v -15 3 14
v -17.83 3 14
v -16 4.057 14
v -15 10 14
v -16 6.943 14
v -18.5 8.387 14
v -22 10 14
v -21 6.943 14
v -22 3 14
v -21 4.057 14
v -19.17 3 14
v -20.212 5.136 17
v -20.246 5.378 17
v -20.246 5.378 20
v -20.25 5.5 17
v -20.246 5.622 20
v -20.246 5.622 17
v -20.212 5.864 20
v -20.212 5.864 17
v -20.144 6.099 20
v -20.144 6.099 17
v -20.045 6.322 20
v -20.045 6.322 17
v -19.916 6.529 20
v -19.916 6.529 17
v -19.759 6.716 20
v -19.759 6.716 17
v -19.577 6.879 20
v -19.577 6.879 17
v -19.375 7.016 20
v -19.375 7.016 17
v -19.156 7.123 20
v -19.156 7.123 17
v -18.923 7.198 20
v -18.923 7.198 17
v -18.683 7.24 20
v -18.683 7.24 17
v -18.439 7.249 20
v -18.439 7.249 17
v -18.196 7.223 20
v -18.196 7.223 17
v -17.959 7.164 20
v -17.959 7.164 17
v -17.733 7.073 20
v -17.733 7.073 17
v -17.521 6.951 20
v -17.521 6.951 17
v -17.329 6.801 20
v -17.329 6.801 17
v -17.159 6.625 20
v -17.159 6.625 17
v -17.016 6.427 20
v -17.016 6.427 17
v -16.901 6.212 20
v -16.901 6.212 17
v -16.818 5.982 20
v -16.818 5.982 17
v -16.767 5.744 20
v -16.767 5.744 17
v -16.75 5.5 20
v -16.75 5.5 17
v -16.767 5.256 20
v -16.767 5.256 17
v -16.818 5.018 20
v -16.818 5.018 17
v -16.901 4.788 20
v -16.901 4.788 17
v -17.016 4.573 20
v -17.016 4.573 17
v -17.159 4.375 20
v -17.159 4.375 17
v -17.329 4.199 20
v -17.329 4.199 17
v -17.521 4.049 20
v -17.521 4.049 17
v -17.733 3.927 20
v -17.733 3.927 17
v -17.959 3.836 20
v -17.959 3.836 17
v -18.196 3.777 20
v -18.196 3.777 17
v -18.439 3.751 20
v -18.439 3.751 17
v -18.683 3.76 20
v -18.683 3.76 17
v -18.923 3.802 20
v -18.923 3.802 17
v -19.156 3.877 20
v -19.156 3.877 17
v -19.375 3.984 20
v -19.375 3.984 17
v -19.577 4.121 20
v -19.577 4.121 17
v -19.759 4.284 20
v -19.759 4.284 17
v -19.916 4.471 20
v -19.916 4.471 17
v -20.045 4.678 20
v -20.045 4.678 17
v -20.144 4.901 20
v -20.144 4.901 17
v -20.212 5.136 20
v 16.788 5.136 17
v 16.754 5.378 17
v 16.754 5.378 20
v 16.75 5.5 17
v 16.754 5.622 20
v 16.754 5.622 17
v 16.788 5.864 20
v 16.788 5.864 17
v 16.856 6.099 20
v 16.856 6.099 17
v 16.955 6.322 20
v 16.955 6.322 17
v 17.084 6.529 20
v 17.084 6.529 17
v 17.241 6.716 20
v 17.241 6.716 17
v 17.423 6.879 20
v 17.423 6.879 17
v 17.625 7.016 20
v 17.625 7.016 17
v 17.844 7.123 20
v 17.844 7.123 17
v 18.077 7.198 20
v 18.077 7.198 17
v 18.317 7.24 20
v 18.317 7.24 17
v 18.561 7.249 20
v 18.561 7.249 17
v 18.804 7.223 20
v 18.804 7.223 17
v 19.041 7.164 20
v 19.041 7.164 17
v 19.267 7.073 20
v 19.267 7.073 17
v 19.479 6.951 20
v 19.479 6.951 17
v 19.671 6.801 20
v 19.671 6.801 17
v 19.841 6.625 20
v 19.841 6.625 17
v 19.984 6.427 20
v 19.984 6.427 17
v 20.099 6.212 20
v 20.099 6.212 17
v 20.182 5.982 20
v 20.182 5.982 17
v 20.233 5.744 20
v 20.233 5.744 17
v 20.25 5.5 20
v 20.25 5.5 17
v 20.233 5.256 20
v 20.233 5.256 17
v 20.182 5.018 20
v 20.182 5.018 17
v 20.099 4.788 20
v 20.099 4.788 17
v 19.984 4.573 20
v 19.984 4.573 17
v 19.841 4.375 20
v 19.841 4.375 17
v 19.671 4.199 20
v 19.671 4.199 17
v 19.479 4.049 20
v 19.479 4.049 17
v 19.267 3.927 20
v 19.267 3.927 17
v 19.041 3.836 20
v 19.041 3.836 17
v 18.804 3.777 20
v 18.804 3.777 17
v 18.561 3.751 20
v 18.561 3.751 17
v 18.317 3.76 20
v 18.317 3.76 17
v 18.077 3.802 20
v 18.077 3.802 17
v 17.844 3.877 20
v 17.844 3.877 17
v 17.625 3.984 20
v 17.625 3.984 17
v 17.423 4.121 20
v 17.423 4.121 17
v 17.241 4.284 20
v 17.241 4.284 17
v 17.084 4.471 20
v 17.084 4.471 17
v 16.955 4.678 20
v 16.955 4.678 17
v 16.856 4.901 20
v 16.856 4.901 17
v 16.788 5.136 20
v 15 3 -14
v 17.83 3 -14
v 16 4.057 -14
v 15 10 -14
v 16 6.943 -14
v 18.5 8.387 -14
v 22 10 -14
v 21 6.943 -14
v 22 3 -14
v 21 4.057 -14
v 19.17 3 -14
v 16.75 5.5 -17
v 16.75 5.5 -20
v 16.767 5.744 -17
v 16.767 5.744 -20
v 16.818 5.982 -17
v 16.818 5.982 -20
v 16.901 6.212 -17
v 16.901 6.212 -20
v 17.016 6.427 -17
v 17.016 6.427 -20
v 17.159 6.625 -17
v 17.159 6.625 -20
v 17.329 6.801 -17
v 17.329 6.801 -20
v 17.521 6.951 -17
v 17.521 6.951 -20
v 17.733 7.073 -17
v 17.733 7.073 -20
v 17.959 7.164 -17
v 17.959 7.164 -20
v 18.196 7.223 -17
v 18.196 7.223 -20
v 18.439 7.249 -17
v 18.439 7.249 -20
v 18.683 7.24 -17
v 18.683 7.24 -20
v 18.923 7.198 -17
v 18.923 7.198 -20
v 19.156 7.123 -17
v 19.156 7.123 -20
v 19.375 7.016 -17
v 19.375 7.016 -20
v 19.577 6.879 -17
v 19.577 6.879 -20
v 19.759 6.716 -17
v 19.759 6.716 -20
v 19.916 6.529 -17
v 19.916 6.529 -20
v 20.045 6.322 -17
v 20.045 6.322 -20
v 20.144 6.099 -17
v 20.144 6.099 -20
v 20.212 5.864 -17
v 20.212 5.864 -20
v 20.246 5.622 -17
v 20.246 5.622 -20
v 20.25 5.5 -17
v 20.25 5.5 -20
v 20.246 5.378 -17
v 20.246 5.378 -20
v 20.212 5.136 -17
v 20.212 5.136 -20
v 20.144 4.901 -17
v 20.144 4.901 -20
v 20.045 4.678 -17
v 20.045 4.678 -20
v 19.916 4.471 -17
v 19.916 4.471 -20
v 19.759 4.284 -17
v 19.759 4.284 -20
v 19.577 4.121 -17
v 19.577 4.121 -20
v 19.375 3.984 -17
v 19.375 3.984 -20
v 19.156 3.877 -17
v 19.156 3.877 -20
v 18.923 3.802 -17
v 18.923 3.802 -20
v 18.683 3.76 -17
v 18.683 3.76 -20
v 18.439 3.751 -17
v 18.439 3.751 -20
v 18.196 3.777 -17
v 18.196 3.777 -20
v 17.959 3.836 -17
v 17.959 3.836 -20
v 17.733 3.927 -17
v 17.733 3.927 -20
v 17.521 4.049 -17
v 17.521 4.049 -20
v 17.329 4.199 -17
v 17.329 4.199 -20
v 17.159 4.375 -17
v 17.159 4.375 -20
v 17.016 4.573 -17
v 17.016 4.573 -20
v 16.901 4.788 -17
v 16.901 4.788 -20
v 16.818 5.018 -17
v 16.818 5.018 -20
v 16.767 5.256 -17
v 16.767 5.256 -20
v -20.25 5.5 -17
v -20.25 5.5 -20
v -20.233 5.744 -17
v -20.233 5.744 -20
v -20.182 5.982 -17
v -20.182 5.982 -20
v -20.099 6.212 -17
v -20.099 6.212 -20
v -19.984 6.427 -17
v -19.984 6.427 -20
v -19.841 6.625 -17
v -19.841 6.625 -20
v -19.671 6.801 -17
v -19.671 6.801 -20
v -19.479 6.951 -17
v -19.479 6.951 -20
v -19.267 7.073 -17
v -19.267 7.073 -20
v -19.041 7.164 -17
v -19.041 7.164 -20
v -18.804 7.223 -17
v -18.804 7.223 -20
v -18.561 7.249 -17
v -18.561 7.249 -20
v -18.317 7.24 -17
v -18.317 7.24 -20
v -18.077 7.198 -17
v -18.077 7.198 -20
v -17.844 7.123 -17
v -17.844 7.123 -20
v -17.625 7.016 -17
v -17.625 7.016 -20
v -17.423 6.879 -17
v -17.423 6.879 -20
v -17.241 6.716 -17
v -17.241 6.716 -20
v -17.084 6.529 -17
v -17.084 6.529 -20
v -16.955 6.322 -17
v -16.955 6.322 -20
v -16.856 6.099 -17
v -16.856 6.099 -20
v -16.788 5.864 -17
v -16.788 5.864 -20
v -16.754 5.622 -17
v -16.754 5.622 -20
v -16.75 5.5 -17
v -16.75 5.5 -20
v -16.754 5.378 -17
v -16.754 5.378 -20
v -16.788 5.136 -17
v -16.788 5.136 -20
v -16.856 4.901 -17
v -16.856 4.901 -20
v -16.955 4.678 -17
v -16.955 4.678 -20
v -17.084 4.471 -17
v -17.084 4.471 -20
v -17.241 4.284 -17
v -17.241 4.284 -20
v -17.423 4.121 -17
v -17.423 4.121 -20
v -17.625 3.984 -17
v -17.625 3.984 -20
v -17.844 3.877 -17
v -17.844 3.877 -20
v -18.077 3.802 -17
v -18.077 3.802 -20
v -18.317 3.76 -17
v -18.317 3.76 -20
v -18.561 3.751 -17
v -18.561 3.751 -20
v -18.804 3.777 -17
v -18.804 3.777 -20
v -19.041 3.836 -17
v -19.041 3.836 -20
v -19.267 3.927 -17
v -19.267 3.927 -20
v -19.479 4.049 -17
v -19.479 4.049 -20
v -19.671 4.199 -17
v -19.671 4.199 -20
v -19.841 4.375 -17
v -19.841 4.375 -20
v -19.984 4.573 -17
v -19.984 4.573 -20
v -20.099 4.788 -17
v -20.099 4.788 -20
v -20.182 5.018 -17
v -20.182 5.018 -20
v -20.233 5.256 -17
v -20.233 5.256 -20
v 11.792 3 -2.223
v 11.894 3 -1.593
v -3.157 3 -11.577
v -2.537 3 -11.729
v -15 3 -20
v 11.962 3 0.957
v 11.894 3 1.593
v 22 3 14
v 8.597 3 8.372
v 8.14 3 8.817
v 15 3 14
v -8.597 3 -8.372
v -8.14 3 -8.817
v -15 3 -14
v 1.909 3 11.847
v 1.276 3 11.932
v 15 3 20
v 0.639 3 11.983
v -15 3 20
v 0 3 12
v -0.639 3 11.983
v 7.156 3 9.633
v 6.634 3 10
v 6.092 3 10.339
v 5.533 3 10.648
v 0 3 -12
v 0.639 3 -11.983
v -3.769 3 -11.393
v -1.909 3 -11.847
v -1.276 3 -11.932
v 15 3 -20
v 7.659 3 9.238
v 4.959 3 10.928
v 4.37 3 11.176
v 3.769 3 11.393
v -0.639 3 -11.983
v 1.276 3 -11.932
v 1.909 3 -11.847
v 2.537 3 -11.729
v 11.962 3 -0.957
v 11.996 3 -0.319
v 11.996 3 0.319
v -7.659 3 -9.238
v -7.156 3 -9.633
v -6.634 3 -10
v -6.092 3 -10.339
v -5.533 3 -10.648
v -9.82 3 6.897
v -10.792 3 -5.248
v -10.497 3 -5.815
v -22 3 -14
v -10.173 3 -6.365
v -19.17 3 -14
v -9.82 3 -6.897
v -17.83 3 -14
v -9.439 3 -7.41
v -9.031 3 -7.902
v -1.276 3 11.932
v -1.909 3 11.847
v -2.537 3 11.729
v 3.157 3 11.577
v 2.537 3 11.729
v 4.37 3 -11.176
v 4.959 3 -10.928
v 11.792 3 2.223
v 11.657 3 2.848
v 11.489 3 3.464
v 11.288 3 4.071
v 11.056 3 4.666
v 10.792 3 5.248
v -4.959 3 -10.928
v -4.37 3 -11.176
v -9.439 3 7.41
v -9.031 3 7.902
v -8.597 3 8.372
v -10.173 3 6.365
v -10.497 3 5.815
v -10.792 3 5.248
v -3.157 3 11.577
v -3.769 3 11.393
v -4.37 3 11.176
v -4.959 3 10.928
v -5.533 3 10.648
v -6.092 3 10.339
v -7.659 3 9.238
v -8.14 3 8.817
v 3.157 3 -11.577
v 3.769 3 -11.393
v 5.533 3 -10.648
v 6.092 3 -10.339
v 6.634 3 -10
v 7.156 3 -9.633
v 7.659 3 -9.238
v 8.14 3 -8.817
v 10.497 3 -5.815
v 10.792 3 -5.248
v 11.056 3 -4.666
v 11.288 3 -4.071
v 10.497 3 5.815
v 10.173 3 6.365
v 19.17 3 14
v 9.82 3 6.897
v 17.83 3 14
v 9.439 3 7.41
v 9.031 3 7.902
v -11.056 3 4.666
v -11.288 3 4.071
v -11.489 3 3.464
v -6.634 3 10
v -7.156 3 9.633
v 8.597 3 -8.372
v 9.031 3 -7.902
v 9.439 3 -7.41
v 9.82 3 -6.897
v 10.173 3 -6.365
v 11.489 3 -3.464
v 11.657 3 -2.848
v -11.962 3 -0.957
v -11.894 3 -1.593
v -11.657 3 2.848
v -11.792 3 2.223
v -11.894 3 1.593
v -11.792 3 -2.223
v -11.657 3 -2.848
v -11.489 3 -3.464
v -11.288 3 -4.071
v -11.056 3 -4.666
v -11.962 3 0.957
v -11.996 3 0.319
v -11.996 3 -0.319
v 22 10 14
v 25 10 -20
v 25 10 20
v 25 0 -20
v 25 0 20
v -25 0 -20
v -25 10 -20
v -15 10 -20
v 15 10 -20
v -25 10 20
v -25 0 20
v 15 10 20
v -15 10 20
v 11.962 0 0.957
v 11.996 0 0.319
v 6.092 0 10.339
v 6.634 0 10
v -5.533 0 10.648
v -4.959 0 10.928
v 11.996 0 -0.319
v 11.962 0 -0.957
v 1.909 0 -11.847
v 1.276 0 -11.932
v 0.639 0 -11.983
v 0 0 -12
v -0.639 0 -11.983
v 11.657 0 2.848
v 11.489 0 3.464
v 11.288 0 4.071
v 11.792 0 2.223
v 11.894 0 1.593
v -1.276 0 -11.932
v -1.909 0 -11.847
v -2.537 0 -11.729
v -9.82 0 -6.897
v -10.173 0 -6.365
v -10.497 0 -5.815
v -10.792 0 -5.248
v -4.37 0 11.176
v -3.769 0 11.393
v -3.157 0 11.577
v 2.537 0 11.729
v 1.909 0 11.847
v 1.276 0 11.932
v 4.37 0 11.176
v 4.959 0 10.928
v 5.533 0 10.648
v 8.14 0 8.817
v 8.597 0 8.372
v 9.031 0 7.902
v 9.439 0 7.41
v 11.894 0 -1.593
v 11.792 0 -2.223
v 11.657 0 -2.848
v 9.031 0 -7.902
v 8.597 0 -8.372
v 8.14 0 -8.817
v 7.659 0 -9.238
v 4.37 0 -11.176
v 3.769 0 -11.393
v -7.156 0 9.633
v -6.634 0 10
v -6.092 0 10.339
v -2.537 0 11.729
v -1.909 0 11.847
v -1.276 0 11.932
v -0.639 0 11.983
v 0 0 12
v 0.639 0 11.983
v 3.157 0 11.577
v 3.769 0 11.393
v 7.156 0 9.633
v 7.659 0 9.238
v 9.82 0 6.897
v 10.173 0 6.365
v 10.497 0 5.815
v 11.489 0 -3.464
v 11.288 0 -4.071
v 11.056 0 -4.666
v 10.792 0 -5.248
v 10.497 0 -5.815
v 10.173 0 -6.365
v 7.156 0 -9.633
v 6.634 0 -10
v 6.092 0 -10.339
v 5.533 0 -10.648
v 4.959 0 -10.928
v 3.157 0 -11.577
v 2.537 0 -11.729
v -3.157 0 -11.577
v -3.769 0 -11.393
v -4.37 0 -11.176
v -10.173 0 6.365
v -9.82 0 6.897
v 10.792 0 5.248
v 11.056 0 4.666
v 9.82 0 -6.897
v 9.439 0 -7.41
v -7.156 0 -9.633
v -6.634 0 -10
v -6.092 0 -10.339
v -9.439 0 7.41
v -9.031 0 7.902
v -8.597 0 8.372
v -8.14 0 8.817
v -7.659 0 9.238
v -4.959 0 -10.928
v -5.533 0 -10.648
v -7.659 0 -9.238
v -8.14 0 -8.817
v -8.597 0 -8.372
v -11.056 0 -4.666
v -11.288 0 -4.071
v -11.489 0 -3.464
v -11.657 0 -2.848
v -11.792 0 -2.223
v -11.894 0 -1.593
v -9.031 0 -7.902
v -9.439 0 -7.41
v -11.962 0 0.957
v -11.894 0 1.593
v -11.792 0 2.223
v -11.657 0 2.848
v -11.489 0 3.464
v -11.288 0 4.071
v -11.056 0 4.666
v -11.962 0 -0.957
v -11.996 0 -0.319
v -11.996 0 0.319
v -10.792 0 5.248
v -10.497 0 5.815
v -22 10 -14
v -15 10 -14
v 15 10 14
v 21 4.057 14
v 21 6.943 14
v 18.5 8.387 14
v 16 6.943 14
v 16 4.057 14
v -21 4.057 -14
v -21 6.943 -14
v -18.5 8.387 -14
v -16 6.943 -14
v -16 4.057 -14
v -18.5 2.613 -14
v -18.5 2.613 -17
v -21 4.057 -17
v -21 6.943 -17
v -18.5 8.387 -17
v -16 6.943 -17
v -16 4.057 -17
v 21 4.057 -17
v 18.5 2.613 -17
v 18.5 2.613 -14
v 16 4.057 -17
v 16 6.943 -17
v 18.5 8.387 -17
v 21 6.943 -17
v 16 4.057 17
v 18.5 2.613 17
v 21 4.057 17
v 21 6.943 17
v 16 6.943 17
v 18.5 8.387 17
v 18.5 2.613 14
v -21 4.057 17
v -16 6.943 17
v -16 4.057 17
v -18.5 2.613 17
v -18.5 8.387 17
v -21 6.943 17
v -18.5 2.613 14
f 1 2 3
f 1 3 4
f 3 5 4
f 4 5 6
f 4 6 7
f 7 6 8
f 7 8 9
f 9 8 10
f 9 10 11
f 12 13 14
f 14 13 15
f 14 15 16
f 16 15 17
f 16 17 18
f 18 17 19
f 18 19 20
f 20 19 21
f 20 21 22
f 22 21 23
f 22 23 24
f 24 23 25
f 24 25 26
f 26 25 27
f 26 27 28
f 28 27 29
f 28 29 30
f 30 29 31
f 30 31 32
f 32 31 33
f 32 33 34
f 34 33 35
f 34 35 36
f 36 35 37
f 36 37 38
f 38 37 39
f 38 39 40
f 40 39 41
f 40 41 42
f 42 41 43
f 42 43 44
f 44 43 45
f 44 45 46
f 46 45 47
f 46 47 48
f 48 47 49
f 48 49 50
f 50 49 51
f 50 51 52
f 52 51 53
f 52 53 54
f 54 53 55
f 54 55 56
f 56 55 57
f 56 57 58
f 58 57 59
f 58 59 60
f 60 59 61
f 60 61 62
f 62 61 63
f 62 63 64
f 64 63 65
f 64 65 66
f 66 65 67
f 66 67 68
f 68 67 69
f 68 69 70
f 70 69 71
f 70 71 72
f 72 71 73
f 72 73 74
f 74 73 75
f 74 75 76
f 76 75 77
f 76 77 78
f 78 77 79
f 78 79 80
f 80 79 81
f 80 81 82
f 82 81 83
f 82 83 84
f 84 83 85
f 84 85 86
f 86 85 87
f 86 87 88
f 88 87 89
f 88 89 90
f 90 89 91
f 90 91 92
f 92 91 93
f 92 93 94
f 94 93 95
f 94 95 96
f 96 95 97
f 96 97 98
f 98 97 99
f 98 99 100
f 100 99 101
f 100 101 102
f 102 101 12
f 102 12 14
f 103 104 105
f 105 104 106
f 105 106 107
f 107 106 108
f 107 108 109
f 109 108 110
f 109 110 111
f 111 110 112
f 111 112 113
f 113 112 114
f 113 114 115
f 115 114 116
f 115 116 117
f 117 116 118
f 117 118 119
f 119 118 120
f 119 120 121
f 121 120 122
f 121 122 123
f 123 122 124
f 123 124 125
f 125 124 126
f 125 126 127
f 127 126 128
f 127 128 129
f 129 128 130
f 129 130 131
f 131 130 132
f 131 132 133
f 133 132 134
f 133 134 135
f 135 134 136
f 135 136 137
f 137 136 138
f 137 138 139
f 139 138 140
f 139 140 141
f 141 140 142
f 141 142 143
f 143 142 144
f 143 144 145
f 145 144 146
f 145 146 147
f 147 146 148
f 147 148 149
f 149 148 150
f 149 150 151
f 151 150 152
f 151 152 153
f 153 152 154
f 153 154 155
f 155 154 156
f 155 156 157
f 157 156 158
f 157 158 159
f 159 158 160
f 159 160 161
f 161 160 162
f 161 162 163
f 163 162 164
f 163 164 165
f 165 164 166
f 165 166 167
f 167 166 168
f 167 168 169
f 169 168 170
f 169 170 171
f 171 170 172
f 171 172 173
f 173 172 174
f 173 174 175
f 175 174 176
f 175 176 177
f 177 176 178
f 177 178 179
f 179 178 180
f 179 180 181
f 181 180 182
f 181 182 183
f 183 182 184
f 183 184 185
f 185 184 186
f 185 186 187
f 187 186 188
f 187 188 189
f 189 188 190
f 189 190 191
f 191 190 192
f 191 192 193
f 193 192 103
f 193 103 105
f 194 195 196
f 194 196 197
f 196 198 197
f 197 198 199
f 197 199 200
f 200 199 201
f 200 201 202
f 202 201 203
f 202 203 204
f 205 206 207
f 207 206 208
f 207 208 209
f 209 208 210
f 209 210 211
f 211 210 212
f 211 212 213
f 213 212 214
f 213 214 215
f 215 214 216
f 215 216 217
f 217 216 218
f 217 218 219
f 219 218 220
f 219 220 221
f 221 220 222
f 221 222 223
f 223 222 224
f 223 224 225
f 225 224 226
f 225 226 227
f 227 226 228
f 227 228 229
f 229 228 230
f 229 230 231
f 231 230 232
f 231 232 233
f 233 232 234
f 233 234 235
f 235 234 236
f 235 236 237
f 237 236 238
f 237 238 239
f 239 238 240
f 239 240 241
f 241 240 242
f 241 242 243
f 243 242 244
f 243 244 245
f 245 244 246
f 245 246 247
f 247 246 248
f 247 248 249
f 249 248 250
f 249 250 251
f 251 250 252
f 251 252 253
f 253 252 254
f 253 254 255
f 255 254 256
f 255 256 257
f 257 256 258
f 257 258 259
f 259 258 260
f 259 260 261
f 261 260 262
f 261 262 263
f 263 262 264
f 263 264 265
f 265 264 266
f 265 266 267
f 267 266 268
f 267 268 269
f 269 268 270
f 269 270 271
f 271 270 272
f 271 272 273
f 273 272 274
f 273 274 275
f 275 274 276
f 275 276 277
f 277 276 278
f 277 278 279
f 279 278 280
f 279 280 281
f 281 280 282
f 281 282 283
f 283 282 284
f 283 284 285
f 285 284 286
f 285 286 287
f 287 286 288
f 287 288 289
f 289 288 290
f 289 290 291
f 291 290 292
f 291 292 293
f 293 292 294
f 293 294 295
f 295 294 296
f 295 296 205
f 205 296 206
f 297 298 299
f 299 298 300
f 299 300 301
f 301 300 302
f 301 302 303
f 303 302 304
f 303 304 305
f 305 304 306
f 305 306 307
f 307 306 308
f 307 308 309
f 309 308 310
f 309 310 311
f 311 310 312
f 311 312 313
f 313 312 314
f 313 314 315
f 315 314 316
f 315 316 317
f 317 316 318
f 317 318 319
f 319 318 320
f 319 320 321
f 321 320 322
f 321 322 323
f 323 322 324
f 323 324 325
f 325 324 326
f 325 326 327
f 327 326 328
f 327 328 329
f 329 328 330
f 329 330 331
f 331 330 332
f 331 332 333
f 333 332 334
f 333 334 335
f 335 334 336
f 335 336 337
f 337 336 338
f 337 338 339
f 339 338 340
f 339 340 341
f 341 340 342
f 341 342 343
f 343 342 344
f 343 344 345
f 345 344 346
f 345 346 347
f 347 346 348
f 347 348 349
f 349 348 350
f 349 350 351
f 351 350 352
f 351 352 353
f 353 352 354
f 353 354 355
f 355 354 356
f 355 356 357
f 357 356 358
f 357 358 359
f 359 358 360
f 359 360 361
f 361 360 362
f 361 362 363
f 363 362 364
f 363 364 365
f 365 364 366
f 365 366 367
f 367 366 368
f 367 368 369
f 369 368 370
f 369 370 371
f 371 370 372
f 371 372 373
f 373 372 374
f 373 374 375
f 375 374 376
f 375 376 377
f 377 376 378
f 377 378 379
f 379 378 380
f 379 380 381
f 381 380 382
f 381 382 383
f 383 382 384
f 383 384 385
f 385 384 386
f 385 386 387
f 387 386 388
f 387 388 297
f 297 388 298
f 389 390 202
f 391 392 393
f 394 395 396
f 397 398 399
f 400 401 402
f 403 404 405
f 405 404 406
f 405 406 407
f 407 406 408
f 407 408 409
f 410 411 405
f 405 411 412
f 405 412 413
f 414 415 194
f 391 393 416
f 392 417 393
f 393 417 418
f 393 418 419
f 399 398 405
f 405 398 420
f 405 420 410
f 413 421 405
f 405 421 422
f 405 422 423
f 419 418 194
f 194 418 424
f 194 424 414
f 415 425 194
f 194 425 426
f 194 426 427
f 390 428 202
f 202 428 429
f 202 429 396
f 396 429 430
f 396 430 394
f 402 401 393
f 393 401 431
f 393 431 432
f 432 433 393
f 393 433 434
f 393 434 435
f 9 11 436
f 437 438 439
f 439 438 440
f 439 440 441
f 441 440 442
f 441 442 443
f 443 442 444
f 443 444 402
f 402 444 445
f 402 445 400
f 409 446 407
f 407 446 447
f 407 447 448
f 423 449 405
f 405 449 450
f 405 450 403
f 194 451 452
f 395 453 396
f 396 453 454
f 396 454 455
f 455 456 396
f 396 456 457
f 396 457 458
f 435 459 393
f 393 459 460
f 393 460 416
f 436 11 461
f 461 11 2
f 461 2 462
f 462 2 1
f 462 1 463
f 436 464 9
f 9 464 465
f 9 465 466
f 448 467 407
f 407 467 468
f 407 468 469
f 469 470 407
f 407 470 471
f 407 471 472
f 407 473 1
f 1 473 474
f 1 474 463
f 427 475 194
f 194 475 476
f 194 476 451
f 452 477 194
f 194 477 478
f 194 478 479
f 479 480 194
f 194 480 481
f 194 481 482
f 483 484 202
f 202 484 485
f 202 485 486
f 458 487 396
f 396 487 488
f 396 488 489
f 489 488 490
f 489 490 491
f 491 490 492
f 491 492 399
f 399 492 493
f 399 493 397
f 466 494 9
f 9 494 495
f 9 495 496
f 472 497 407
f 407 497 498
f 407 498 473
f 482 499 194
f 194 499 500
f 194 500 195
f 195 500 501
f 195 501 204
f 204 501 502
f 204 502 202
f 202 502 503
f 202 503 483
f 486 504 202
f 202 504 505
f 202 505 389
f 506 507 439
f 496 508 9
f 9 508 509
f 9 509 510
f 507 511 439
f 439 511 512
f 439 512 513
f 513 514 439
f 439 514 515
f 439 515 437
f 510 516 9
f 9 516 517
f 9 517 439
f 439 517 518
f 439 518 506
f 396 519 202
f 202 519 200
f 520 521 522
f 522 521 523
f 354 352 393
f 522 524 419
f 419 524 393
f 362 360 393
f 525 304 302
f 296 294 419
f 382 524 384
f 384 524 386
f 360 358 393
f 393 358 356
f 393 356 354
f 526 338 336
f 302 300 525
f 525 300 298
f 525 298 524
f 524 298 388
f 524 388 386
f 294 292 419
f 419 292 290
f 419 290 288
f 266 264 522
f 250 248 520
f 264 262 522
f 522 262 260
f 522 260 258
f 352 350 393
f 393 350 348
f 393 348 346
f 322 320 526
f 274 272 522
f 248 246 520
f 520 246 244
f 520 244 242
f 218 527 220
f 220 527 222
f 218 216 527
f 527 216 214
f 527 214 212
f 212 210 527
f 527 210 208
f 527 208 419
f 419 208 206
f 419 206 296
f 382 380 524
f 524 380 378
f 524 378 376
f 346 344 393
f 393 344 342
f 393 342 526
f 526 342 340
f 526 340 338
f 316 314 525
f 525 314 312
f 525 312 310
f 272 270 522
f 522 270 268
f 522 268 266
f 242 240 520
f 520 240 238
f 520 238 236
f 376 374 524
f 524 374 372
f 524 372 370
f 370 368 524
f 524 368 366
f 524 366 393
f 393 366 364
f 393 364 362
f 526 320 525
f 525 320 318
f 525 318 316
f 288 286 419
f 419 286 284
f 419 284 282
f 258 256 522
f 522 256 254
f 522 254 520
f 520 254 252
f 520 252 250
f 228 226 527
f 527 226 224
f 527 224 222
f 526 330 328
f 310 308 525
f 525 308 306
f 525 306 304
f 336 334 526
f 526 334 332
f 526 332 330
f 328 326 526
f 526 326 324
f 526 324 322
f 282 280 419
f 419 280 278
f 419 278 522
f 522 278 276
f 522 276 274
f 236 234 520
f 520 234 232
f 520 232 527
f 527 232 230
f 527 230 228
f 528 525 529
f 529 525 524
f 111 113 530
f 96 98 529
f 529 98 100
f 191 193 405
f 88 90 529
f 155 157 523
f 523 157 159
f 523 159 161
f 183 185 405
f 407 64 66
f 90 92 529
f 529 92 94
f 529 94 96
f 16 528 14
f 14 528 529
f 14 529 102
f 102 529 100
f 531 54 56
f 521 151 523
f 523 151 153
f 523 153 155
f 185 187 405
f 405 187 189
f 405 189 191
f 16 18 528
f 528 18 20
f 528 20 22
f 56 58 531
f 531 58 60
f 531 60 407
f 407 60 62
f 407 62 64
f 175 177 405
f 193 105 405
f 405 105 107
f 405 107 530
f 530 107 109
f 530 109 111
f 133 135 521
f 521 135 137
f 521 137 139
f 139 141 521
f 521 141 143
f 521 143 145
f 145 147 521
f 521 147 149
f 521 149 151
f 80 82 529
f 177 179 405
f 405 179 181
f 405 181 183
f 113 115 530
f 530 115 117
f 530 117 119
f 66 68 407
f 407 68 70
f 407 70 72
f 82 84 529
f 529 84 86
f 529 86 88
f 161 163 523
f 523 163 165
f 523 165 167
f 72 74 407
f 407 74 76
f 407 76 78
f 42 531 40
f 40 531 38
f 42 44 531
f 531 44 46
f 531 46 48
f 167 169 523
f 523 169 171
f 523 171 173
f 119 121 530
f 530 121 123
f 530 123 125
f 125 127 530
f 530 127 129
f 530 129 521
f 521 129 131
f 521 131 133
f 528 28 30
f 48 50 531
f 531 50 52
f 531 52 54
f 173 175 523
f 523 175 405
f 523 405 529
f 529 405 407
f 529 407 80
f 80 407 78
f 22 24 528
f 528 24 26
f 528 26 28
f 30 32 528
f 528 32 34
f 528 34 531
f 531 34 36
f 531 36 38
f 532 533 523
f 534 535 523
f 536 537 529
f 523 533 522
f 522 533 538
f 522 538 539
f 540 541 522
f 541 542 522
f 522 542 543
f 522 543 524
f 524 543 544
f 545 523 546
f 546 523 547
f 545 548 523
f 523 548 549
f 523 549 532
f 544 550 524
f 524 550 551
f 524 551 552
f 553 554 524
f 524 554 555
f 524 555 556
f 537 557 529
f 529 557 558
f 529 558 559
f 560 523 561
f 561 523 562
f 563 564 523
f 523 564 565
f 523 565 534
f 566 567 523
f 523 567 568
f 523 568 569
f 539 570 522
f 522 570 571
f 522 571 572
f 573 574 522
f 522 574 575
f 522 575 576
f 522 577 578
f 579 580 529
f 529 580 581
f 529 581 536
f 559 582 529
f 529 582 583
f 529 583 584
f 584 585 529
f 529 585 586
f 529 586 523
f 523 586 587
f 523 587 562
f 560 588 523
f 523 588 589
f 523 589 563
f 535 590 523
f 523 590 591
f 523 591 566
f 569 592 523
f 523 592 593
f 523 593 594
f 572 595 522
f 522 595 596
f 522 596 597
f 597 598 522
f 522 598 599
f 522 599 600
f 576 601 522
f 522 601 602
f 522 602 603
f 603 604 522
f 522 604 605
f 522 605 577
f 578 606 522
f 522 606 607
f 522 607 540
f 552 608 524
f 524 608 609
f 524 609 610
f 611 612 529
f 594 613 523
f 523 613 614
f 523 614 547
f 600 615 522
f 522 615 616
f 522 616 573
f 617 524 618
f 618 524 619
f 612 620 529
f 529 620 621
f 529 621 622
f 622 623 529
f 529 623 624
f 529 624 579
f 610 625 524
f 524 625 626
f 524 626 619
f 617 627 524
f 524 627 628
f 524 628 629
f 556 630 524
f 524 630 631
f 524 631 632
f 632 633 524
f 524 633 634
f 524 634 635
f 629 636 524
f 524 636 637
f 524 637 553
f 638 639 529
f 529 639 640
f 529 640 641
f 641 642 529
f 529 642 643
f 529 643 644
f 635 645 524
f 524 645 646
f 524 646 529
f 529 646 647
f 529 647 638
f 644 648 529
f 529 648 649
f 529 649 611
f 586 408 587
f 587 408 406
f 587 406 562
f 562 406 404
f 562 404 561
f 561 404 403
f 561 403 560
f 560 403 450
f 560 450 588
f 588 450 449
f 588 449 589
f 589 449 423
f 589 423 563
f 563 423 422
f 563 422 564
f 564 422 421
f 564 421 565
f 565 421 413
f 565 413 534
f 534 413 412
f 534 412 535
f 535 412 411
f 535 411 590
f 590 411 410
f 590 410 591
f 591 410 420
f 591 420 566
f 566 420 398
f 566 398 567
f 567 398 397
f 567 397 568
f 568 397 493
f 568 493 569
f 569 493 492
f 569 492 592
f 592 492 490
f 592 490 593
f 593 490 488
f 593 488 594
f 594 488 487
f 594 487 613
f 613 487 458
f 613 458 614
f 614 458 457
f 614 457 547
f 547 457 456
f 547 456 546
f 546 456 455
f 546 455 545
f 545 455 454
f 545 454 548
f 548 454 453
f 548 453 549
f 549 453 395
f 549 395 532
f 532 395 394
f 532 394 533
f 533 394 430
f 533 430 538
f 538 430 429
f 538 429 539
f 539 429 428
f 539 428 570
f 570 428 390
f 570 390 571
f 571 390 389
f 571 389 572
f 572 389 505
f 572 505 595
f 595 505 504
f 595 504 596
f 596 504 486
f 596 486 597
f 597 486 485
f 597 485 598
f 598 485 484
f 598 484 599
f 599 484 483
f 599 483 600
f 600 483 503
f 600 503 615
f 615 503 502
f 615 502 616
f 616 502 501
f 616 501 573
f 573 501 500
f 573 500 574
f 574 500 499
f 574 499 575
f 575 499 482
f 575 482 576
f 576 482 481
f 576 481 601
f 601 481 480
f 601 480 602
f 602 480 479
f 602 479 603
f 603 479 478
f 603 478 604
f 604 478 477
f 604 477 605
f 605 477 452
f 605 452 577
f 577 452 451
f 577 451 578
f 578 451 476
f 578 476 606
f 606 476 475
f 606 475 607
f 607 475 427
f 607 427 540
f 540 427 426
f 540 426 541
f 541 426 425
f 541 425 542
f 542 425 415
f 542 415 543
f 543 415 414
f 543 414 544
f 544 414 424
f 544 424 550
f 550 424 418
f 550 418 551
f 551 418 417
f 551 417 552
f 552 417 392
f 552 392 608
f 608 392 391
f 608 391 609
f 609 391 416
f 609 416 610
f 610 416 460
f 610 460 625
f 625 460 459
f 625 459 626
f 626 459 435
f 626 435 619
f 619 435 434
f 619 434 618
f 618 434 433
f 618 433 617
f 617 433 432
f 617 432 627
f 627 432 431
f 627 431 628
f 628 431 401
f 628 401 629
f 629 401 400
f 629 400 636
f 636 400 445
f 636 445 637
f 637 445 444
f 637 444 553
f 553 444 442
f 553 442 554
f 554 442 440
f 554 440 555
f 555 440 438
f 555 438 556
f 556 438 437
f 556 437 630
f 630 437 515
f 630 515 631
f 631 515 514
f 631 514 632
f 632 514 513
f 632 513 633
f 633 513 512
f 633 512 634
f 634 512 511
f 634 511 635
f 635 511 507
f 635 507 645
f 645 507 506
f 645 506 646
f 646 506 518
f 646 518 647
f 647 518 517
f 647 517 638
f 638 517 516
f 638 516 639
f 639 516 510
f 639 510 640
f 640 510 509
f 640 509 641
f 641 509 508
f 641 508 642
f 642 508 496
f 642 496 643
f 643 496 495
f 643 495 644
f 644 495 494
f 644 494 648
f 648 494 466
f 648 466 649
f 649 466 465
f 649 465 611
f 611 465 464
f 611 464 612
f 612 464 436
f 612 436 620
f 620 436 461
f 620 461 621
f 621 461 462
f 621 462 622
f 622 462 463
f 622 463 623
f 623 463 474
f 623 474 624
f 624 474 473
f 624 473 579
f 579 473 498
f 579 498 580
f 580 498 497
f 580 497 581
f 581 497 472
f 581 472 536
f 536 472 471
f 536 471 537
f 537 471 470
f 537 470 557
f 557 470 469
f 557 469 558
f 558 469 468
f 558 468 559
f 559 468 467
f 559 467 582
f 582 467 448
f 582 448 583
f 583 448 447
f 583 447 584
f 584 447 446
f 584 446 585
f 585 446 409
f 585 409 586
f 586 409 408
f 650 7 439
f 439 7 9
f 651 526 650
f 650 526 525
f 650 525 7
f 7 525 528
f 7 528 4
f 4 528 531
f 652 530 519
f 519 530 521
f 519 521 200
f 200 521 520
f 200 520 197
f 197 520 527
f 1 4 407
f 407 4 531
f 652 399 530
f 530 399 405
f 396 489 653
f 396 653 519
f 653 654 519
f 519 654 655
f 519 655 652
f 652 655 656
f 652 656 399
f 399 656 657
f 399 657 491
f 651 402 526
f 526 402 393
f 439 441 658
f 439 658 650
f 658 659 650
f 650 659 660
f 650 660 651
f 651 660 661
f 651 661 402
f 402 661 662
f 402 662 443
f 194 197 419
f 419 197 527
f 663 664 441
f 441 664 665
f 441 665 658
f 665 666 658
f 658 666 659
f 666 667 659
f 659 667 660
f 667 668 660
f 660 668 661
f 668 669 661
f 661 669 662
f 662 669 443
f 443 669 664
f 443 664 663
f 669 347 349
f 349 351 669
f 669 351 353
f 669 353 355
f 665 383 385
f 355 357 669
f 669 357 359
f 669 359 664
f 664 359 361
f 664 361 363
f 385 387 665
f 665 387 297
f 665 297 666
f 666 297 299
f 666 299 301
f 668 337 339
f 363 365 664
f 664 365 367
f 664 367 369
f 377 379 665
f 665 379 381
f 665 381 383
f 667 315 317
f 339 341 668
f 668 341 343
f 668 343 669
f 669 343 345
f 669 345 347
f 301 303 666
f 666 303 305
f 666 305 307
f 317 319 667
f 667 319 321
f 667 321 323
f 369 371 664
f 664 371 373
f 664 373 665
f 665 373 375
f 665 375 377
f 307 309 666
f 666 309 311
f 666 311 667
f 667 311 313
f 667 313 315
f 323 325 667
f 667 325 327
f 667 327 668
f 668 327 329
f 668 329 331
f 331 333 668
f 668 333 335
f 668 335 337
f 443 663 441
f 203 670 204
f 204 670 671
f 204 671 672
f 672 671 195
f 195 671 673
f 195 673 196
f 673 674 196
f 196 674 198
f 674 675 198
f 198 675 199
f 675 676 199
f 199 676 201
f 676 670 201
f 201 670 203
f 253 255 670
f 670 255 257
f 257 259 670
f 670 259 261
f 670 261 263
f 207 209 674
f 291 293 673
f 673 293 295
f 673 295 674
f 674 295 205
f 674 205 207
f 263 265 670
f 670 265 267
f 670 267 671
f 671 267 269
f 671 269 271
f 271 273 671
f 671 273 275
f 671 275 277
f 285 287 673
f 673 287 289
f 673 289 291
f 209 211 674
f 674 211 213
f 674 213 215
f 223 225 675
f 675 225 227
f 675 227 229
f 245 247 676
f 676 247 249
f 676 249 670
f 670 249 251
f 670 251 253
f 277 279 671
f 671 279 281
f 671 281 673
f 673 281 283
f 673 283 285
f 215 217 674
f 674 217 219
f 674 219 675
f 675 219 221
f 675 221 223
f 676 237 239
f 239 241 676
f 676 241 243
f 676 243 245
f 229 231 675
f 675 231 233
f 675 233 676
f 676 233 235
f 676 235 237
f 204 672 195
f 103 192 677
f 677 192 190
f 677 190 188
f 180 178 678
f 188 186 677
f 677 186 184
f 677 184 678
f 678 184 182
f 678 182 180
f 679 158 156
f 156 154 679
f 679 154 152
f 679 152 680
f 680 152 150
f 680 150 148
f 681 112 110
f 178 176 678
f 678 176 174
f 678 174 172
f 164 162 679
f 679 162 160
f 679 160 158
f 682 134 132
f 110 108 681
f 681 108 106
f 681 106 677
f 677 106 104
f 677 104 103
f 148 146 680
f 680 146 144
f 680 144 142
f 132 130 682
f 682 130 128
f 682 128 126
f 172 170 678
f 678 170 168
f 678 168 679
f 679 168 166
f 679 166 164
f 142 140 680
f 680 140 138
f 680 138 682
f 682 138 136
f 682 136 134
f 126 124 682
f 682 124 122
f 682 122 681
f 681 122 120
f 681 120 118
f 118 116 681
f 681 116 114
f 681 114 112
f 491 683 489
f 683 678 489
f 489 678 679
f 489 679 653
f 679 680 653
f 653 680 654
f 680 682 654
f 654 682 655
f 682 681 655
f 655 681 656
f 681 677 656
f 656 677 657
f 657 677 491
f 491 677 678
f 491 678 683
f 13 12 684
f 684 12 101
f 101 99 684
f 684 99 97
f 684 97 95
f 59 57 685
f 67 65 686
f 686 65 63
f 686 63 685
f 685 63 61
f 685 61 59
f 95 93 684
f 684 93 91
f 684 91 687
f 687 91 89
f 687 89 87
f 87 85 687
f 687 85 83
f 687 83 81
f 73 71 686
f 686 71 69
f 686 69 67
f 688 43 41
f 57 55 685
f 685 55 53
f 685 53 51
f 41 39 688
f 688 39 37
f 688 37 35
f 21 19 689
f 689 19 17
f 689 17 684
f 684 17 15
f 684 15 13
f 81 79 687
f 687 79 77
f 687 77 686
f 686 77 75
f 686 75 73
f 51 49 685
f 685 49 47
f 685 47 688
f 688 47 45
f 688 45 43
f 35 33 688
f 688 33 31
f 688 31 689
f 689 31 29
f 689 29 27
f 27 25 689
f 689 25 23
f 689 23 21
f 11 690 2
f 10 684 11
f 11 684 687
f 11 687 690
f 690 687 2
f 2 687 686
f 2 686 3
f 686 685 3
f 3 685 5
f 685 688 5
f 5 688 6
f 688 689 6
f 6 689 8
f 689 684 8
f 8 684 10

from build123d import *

# Parameters (mm, degrees)
SKETCH1_W            = 50
SKETCH1_H            = 40
BOSS_EXTRUDE1_DEPTH  = 3
SKETCH2_R            = 12
CUT_EXTRUDE1_DEPTH   = 33.155870382
SKETCH3_W            = 3
SKETCH3_H            = 40
BOSS_EXTRUDE2_DEPTH  = 7
SKETCH4_W            = 7
SKETCH4_H            = 7
BOSS_EXTRUDE3_DEPTH  = 6
SKETCH5_R            = 1.75
CUT_EXTRUDE2_DEPTH   = 49.218253805
CUT_EXTRUDE3_DEPTH   = 3
MIRROR3_COPY_1_DEPTH = 3


with BuildPart() as part:
    # Sketch1 → Boss-Extrude1 (new body)
    with BuildSketch(Plane(origin=(0, 0, 0), x_dir=(1, 0, 0), z_dir=(0, 1, 0))):
        Rectangle(SKETCH1_W, SKETCH1_H)
    extrude(amount=BOSS_EXTRUDE1_DEPTH)

    # Sketch2 → Cut-Extrude1 (cut, through all)
    with BuildSketch(Plane(origin=(0, 3, 0), x_dir=(1, 0, 0), z_dir=(0, 1, 0))):
        with Locations(Location((0, 0, 0), (0, 0, 270))):
            Circle(SKETCH2_R)
    extrude(amount=-CUT_EXTRUDE1_DEPTH, mode=Mode.SUBTRACT)

    # Sketch3 → Boss-Extrude2 (add)
    with BuildSketch(Plane(origin=(0, 3, 0), x_dir=(1, 0, 0), z_dir=(0, 1, 0))):
        with Locations((-23.5, 0)):
            Rectangle(SKETCH3_W, SKETCH3_H)
        with Locations((23.5, 0)):
            Rectangle(SKETCH3_W, SKETCH3_H)
    extrude(amount=BOSS_EXTRUDE2_DEPTH)

    # Sketch4 → Boss-Extrude3 (add)
    with BuildSketch(Plane.XY.offset(20)):
        with Locations((-18.5, 6.5)):
            Rectangle(SKETCH4_W, SKETCH4_H)
        with Locations((18.5, 6.5)):
            Rectangle(SKETCH4_W, SKETCH4_H)
    boss_extrude3 = extrude(amount=-BOSS_EXTRUDE3_DEPTH)

    # Sketch5 → Cut-Extrude2 (cut, through all)
    with BuildSketch(Plane.XY.offset(20)):
        with Locations((-18.5, 5.5)):
            Circle(SKETCH5_R)
        with Locations((18.5, 5.5)):
            Circle(SKETCH5_R)
    cut_extrude2 = extrude(amount=-CUT_EXTRUDE2_DEPTH, mode=Mode.SUBTRACT)

    # Mirror1: Boss-Extrude3, Cut-Extrude2 across plane
    add(boss_extrude3.mirror(Plane.XY))
    add(cut_extrude2.mirror(Plane.XY), mode=Mode.SUBTRACT)

    # Sketch6 → Cut-Extrude3 (cut)
    with BuildSketch(Plane.XY.offset(-14)):
        Polygon((-18.5, 2.613248654), (-16, 4.056624327), (-16, 6.943375673), (-18.5, 8.386751346), (-21, 6.943375673), (-21, 4.056624327), align=None)
    cut_extrude3 = extrude(amount=-CUT_EXTRUDE3_DEPTH, mode=Mode.SUBTRACT)

    # Mirror2: Cut-Extrude3 across plane
    add(cut_extrude3.mirror(Plane(origin=(0, 0, 0), x_dir=(0, 0, 1), z_dir=(1, 0, 0))), mode=Mode.SUBTRACT)

    # Mirror3: Cut-Extrude3 across plane
    add(cut_extrude3.mirror(Plane.XY), mode=Mode.SUBTRACT)

    # Mirror3 copy 1 sketch → Mirror3 copy 1 (cut)
    with BuildSketch(Plane(origin=(0, 0, 14), x_dir=(-1, 0, 0), z_dir=(0, 0, -1))):
        Polygon((-18.5, 2.613248654), (-16, 4.056624327), (-16, 6.943375673), (-18.5, 8.386751346), (-21, 6.943375673), (-21, 4.056624327), align=None)
    extrude(amount=-MIRROR3_COPY_1_DEPTH, mode=Mode.SUBTRACT)


solid = part.part
